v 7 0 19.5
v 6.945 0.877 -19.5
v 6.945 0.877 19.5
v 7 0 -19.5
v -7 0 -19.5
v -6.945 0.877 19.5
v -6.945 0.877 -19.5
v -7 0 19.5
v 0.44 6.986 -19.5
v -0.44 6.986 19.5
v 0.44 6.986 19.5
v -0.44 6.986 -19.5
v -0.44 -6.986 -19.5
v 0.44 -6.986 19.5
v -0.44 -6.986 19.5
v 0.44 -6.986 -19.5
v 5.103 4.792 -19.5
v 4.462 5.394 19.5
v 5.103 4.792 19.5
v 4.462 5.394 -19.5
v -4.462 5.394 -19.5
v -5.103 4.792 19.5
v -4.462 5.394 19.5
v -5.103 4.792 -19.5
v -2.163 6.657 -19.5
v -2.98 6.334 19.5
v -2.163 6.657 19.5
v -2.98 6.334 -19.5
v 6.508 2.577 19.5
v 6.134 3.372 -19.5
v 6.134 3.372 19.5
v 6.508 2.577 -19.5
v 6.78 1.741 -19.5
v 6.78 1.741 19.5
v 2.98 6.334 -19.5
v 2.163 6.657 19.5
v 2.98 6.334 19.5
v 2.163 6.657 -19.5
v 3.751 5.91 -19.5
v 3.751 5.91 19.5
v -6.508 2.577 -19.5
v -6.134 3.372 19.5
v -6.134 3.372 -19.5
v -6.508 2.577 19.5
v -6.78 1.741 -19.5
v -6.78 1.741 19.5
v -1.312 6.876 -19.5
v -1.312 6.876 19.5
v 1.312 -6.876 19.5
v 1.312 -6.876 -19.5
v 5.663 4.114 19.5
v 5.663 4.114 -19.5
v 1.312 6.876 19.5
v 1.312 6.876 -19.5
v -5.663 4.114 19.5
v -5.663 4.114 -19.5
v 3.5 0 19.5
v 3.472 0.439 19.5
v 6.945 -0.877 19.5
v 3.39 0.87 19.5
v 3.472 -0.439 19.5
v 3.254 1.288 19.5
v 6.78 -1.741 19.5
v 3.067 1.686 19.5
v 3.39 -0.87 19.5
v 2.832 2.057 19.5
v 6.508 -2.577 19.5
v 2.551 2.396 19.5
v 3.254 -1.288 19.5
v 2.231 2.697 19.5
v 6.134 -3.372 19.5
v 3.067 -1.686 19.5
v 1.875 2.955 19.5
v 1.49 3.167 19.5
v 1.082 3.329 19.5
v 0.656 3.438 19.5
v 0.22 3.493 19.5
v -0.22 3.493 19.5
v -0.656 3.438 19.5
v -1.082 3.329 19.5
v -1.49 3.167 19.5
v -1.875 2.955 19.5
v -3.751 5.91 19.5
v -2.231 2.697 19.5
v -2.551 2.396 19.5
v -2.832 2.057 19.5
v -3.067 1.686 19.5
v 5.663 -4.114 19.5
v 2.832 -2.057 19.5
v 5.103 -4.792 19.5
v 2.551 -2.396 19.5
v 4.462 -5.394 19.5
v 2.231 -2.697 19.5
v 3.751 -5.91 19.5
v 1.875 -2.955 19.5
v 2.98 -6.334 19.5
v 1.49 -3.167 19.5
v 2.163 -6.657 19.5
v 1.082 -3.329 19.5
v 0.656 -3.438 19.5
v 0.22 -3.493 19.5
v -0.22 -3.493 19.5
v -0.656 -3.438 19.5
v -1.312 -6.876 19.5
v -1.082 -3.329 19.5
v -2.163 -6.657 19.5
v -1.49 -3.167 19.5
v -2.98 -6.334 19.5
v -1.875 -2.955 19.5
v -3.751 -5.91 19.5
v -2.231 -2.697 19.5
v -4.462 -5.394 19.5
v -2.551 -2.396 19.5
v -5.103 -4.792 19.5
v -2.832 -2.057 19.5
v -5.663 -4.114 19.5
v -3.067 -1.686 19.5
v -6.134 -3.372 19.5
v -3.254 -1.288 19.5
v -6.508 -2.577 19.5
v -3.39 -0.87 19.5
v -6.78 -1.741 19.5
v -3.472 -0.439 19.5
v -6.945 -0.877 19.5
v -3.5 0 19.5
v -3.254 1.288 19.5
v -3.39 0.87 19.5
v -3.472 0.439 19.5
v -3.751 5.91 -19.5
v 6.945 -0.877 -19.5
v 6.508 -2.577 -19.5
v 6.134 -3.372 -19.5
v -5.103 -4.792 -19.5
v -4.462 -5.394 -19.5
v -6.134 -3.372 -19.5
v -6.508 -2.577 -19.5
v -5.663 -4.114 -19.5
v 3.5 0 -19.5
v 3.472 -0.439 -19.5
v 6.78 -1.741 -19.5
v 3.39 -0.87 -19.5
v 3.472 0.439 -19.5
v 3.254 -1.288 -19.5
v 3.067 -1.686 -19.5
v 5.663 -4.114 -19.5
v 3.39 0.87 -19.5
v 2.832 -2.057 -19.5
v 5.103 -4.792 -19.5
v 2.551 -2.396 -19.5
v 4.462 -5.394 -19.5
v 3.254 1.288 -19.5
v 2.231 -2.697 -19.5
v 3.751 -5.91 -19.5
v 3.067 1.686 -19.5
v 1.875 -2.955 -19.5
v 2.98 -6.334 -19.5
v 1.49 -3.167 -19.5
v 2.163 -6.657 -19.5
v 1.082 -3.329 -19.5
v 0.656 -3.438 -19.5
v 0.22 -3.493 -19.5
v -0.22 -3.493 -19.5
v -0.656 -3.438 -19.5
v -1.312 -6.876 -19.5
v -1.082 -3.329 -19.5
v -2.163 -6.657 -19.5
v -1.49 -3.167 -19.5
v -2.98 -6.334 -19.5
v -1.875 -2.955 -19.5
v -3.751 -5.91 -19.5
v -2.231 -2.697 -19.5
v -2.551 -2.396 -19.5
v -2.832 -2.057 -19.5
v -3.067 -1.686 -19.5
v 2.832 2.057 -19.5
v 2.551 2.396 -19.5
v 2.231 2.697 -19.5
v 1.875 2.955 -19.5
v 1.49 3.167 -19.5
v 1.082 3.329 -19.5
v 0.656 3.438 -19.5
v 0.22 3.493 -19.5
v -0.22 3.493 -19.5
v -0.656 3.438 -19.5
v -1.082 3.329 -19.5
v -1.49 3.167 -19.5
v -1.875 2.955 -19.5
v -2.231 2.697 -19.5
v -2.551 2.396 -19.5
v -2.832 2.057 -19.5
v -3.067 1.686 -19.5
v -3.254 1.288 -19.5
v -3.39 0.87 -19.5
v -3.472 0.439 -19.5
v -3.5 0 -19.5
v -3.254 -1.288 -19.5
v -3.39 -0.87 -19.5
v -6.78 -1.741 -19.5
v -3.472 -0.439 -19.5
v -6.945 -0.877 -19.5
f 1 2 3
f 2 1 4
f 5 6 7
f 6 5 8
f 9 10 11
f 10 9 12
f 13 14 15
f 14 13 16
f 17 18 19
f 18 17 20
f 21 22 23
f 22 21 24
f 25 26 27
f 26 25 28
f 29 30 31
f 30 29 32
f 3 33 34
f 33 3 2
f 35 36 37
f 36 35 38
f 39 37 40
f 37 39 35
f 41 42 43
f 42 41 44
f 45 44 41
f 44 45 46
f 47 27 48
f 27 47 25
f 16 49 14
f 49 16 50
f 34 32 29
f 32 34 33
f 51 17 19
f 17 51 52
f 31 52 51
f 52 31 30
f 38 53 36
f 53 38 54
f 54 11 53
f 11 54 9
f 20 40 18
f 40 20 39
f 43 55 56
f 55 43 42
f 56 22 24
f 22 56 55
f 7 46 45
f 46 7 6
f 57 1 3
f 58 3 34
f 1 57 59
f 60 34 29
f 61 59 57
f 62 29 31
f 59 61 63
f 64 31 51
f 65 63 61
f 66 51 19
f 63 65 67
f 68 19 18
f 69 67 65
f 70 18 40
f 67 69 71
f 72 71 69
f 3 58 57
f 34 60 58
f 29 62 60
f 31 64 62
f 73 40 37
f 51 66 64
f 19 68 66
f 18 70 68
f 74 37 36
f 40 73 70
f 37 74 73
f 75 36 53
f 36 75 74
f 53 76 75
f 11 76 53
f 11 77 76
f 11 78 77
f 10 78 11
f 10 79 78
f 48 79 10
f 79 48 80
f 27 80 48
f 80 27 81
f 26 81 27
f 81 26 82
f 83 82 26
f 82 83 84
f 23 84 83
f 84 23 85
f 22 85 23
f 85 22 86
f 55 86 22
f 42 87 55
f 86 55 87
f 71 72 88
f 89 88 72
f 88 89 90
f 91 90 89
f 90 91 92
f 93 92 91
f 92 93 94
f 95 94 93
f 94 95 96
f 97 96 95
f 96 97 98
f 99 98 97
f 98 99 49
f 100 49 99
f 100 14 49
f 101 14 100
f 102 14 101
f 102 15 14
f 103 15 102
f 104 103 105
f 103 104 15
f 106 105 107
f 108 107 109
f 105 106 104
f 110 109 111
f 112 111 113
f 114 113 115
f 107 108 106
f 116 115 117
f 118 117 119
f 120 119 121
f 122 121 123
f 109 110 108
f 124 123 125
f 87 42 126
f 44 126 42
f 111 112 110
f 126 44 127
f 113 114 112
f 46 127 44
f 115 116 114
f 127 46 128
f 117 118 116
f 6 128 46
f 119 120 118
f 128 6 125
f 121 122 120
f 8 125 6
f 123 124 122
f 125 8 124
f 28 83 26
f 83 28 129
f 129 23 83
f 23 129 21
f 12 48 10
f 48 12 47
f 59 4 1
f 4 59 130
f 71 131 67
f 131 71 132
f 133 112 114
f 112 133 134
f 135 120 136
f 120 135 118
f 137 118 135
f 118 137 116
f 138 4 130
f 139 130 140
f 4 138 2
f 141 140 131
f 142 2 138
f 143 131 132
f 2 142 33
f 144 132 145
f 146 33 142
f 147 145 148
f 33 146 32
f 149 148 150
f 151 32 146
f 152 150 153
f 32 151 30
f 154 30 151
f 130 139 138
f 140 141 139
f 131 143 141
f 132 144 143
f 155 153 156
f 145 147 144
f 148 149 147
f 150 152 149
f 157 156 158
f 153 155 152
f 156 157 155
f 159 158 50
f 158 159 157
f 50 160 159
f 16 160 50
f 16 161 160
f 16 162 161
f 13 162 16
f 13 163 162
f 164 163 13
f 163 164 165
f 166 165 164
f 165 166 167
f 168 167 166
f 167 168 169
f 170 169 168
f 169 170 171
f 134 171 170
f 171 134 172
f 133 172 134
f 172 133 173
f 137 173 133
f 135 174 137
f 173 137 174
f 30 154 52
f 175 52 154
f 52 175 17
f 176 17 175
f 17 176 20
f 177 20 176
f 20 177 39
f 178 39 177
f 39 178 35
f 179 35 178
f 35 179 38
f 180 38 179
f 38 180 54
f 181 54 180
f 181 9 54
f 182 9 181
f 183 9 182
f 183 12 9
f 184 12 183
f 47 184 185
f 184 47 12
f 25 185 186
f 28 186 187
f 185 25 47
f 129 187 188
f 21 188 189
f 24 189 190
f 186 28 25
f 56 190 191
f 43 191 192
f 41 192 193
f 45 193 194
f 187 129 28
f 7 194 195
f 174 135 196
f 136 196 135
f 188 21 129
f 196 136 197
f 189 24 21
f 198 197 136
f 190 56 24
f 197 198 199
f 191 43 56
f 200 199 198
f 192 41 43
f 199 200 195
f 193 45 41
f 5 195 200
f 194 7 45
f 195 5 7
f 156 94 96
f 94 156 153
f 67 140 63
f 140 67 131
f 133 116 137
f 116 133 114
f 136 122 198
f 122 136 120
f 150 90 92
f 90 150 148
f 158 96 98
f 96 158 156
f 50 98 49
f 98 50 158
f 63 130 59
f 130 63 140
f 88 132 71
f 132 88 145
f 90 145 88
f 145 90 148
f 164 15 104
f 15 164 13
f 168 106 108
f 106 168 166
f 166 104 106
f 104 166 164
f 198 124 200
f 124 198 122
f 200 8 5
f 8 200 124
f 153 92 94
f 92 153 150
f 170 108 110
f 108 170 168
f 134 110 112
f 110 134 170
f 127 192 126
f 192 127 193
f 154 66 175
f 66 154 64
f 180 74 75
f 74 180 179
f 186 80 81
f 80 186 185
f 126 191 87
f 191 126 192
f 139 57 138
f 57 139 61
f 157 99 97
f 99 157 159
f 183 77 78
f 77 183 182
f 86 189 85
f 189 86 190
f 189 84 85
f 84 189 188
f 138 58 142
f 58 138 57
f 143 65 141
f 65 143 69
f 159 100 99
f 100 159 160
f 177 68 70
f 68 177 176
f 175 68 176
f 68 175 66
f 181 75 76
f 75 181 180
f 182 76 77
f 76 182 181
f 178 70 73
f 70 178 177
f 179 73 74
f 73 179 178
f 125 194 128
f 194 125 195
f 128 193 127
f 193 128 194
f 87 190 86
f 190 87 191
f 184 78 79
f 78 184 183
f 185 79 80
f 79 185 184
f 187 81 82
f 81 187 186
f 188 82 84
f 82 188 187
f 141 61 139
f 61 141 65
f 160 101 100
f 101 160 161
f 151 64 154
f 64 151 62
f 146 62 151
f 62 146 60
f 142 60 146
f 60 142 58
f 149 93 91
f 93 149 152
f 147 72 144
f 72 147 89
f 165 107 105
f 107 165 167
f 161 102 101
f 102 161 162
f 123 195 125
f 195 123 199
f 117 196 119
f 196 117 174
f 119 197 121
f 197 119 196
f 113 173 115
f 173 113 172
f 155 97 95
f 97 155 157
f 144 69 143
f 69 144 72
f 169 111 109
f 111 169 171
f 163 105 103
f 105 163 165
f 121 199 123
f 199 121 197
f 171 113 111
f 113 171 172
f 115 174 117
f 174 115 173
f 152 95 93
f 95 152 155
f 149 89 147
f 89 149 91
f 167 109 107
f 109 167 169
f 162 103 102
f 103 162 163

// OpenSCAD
$fn = 50;


difference() {
	union() {
		translate(v = [0, 0, -19.5000000000]) {
			cylinder(h = 39, r = 7.0000000000);
		}
	}
	union() {
		translate(v = [0, 0, -100.0000000000]) {
			cylinder(h = 200, r = 3.5000000000);
		}
	}
}
